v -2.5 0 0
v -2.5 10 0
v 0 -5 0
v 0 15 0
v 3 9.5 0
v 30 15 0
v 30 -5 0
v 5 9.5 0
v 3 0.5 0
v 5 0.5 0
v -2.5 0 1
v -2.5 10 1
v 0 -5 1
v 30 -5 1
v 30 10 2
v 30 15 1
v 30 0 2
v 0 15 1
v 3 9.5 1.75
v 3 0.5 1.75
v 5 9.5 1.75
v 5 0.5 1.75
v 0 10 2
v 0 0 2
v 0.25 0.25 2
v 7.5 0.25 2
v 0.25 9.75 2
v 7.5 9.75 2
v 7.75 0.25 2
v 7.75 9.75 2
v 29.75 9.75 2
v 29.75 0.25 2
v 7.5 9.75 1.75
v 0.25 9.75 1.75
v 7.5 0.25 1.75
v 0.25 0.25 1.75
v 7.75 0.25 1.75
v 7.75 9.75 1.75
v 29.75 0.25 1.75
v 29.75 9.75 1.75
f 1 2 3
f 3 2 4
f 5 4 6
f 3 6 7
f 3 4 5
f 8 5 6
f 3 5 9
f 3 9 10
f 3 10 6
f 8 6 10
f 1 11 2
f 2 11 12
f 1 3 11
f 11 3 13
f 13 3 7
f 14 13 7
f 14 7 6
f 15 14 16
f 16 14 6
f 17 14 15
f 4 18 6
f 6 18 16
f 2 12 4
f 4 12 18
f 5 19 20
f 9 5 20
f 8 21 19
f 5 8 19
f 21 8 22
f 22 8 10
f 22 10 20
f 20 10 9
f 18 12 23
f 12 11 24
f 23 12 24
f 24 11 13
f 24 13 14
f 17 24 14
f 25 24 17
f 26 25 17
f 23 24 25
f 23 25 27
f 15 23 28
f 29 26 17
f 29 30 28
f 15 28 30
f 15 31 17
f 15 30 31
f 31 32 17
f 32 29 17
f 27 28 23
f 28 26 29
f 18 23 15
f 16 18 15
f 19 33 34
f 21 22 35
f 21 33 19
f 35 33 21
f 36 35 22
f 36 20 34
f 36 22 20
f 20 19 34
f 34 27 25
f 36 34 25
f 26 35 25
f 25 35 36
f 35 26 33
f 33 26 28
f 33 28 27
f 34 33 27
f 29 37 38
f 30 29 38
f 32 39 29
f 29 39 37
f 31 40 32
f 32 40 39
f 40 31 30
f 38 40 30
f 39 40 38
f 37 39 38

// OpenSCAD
module RiotShield(height = 30, width = 20, depth = 2, rim = 0.25)
{
    difference()
    {
        hull()
        {
            cube([height, width/2, depth]);

            translate([-height/12, 0, 0])
            cube([height, width/2, depth/2]);

            translate([0, width/2, 0])
            cube([height, width/4, depth/2]);

            translate([0, -width/4, 0])
            cube([height, width/4, depth/2]);
        }

        translate([height/10, rim*2, 0])
        cube([2, width/2 -rim*4,  depth]);
    }

    translate([0, width/2, depth])
    cube([height, rim, rim]);

    translate([0, 0, depth])
    cube([height, rim, rim]);

    translate([0, 0, depth])
    cube([rim, width/2, rim]);

    translate([height/4, 0, depth])
    cube([rim, width/2, rim]);

    translate([height-rim, 0, depth])
    cube([rim, width/2, rim]);
}

module RiotShield2(height = 30, width = 20, depth = 2, rim = 0.25)
{
    difference()
    {
        hull()
        {
            cube([height, width/2, depth]);

            translate([-height/12, 0, 0])
            cube([height, width/2, depth/2]);

            translate([0, width/2, 0])
            cube([height, width/4, depth/2]);

            translate([0, -width/4, 0])
            cube([height, width/4, depth/2]);
        }

        translate([height/10, rim*2, 0])
        cube([2, width/2 -rim*4,  depth]);

        translate([rim, rim, depth-rim])
        cube([height - rim*2, width/2 - rim*2, rim]);
    }

    translate([height/4, 0, depth - rim])
    cube([rim, width/2, rim]);
}

//translate([0, -25, 0])
//RiotShield();

RiotShield2();
